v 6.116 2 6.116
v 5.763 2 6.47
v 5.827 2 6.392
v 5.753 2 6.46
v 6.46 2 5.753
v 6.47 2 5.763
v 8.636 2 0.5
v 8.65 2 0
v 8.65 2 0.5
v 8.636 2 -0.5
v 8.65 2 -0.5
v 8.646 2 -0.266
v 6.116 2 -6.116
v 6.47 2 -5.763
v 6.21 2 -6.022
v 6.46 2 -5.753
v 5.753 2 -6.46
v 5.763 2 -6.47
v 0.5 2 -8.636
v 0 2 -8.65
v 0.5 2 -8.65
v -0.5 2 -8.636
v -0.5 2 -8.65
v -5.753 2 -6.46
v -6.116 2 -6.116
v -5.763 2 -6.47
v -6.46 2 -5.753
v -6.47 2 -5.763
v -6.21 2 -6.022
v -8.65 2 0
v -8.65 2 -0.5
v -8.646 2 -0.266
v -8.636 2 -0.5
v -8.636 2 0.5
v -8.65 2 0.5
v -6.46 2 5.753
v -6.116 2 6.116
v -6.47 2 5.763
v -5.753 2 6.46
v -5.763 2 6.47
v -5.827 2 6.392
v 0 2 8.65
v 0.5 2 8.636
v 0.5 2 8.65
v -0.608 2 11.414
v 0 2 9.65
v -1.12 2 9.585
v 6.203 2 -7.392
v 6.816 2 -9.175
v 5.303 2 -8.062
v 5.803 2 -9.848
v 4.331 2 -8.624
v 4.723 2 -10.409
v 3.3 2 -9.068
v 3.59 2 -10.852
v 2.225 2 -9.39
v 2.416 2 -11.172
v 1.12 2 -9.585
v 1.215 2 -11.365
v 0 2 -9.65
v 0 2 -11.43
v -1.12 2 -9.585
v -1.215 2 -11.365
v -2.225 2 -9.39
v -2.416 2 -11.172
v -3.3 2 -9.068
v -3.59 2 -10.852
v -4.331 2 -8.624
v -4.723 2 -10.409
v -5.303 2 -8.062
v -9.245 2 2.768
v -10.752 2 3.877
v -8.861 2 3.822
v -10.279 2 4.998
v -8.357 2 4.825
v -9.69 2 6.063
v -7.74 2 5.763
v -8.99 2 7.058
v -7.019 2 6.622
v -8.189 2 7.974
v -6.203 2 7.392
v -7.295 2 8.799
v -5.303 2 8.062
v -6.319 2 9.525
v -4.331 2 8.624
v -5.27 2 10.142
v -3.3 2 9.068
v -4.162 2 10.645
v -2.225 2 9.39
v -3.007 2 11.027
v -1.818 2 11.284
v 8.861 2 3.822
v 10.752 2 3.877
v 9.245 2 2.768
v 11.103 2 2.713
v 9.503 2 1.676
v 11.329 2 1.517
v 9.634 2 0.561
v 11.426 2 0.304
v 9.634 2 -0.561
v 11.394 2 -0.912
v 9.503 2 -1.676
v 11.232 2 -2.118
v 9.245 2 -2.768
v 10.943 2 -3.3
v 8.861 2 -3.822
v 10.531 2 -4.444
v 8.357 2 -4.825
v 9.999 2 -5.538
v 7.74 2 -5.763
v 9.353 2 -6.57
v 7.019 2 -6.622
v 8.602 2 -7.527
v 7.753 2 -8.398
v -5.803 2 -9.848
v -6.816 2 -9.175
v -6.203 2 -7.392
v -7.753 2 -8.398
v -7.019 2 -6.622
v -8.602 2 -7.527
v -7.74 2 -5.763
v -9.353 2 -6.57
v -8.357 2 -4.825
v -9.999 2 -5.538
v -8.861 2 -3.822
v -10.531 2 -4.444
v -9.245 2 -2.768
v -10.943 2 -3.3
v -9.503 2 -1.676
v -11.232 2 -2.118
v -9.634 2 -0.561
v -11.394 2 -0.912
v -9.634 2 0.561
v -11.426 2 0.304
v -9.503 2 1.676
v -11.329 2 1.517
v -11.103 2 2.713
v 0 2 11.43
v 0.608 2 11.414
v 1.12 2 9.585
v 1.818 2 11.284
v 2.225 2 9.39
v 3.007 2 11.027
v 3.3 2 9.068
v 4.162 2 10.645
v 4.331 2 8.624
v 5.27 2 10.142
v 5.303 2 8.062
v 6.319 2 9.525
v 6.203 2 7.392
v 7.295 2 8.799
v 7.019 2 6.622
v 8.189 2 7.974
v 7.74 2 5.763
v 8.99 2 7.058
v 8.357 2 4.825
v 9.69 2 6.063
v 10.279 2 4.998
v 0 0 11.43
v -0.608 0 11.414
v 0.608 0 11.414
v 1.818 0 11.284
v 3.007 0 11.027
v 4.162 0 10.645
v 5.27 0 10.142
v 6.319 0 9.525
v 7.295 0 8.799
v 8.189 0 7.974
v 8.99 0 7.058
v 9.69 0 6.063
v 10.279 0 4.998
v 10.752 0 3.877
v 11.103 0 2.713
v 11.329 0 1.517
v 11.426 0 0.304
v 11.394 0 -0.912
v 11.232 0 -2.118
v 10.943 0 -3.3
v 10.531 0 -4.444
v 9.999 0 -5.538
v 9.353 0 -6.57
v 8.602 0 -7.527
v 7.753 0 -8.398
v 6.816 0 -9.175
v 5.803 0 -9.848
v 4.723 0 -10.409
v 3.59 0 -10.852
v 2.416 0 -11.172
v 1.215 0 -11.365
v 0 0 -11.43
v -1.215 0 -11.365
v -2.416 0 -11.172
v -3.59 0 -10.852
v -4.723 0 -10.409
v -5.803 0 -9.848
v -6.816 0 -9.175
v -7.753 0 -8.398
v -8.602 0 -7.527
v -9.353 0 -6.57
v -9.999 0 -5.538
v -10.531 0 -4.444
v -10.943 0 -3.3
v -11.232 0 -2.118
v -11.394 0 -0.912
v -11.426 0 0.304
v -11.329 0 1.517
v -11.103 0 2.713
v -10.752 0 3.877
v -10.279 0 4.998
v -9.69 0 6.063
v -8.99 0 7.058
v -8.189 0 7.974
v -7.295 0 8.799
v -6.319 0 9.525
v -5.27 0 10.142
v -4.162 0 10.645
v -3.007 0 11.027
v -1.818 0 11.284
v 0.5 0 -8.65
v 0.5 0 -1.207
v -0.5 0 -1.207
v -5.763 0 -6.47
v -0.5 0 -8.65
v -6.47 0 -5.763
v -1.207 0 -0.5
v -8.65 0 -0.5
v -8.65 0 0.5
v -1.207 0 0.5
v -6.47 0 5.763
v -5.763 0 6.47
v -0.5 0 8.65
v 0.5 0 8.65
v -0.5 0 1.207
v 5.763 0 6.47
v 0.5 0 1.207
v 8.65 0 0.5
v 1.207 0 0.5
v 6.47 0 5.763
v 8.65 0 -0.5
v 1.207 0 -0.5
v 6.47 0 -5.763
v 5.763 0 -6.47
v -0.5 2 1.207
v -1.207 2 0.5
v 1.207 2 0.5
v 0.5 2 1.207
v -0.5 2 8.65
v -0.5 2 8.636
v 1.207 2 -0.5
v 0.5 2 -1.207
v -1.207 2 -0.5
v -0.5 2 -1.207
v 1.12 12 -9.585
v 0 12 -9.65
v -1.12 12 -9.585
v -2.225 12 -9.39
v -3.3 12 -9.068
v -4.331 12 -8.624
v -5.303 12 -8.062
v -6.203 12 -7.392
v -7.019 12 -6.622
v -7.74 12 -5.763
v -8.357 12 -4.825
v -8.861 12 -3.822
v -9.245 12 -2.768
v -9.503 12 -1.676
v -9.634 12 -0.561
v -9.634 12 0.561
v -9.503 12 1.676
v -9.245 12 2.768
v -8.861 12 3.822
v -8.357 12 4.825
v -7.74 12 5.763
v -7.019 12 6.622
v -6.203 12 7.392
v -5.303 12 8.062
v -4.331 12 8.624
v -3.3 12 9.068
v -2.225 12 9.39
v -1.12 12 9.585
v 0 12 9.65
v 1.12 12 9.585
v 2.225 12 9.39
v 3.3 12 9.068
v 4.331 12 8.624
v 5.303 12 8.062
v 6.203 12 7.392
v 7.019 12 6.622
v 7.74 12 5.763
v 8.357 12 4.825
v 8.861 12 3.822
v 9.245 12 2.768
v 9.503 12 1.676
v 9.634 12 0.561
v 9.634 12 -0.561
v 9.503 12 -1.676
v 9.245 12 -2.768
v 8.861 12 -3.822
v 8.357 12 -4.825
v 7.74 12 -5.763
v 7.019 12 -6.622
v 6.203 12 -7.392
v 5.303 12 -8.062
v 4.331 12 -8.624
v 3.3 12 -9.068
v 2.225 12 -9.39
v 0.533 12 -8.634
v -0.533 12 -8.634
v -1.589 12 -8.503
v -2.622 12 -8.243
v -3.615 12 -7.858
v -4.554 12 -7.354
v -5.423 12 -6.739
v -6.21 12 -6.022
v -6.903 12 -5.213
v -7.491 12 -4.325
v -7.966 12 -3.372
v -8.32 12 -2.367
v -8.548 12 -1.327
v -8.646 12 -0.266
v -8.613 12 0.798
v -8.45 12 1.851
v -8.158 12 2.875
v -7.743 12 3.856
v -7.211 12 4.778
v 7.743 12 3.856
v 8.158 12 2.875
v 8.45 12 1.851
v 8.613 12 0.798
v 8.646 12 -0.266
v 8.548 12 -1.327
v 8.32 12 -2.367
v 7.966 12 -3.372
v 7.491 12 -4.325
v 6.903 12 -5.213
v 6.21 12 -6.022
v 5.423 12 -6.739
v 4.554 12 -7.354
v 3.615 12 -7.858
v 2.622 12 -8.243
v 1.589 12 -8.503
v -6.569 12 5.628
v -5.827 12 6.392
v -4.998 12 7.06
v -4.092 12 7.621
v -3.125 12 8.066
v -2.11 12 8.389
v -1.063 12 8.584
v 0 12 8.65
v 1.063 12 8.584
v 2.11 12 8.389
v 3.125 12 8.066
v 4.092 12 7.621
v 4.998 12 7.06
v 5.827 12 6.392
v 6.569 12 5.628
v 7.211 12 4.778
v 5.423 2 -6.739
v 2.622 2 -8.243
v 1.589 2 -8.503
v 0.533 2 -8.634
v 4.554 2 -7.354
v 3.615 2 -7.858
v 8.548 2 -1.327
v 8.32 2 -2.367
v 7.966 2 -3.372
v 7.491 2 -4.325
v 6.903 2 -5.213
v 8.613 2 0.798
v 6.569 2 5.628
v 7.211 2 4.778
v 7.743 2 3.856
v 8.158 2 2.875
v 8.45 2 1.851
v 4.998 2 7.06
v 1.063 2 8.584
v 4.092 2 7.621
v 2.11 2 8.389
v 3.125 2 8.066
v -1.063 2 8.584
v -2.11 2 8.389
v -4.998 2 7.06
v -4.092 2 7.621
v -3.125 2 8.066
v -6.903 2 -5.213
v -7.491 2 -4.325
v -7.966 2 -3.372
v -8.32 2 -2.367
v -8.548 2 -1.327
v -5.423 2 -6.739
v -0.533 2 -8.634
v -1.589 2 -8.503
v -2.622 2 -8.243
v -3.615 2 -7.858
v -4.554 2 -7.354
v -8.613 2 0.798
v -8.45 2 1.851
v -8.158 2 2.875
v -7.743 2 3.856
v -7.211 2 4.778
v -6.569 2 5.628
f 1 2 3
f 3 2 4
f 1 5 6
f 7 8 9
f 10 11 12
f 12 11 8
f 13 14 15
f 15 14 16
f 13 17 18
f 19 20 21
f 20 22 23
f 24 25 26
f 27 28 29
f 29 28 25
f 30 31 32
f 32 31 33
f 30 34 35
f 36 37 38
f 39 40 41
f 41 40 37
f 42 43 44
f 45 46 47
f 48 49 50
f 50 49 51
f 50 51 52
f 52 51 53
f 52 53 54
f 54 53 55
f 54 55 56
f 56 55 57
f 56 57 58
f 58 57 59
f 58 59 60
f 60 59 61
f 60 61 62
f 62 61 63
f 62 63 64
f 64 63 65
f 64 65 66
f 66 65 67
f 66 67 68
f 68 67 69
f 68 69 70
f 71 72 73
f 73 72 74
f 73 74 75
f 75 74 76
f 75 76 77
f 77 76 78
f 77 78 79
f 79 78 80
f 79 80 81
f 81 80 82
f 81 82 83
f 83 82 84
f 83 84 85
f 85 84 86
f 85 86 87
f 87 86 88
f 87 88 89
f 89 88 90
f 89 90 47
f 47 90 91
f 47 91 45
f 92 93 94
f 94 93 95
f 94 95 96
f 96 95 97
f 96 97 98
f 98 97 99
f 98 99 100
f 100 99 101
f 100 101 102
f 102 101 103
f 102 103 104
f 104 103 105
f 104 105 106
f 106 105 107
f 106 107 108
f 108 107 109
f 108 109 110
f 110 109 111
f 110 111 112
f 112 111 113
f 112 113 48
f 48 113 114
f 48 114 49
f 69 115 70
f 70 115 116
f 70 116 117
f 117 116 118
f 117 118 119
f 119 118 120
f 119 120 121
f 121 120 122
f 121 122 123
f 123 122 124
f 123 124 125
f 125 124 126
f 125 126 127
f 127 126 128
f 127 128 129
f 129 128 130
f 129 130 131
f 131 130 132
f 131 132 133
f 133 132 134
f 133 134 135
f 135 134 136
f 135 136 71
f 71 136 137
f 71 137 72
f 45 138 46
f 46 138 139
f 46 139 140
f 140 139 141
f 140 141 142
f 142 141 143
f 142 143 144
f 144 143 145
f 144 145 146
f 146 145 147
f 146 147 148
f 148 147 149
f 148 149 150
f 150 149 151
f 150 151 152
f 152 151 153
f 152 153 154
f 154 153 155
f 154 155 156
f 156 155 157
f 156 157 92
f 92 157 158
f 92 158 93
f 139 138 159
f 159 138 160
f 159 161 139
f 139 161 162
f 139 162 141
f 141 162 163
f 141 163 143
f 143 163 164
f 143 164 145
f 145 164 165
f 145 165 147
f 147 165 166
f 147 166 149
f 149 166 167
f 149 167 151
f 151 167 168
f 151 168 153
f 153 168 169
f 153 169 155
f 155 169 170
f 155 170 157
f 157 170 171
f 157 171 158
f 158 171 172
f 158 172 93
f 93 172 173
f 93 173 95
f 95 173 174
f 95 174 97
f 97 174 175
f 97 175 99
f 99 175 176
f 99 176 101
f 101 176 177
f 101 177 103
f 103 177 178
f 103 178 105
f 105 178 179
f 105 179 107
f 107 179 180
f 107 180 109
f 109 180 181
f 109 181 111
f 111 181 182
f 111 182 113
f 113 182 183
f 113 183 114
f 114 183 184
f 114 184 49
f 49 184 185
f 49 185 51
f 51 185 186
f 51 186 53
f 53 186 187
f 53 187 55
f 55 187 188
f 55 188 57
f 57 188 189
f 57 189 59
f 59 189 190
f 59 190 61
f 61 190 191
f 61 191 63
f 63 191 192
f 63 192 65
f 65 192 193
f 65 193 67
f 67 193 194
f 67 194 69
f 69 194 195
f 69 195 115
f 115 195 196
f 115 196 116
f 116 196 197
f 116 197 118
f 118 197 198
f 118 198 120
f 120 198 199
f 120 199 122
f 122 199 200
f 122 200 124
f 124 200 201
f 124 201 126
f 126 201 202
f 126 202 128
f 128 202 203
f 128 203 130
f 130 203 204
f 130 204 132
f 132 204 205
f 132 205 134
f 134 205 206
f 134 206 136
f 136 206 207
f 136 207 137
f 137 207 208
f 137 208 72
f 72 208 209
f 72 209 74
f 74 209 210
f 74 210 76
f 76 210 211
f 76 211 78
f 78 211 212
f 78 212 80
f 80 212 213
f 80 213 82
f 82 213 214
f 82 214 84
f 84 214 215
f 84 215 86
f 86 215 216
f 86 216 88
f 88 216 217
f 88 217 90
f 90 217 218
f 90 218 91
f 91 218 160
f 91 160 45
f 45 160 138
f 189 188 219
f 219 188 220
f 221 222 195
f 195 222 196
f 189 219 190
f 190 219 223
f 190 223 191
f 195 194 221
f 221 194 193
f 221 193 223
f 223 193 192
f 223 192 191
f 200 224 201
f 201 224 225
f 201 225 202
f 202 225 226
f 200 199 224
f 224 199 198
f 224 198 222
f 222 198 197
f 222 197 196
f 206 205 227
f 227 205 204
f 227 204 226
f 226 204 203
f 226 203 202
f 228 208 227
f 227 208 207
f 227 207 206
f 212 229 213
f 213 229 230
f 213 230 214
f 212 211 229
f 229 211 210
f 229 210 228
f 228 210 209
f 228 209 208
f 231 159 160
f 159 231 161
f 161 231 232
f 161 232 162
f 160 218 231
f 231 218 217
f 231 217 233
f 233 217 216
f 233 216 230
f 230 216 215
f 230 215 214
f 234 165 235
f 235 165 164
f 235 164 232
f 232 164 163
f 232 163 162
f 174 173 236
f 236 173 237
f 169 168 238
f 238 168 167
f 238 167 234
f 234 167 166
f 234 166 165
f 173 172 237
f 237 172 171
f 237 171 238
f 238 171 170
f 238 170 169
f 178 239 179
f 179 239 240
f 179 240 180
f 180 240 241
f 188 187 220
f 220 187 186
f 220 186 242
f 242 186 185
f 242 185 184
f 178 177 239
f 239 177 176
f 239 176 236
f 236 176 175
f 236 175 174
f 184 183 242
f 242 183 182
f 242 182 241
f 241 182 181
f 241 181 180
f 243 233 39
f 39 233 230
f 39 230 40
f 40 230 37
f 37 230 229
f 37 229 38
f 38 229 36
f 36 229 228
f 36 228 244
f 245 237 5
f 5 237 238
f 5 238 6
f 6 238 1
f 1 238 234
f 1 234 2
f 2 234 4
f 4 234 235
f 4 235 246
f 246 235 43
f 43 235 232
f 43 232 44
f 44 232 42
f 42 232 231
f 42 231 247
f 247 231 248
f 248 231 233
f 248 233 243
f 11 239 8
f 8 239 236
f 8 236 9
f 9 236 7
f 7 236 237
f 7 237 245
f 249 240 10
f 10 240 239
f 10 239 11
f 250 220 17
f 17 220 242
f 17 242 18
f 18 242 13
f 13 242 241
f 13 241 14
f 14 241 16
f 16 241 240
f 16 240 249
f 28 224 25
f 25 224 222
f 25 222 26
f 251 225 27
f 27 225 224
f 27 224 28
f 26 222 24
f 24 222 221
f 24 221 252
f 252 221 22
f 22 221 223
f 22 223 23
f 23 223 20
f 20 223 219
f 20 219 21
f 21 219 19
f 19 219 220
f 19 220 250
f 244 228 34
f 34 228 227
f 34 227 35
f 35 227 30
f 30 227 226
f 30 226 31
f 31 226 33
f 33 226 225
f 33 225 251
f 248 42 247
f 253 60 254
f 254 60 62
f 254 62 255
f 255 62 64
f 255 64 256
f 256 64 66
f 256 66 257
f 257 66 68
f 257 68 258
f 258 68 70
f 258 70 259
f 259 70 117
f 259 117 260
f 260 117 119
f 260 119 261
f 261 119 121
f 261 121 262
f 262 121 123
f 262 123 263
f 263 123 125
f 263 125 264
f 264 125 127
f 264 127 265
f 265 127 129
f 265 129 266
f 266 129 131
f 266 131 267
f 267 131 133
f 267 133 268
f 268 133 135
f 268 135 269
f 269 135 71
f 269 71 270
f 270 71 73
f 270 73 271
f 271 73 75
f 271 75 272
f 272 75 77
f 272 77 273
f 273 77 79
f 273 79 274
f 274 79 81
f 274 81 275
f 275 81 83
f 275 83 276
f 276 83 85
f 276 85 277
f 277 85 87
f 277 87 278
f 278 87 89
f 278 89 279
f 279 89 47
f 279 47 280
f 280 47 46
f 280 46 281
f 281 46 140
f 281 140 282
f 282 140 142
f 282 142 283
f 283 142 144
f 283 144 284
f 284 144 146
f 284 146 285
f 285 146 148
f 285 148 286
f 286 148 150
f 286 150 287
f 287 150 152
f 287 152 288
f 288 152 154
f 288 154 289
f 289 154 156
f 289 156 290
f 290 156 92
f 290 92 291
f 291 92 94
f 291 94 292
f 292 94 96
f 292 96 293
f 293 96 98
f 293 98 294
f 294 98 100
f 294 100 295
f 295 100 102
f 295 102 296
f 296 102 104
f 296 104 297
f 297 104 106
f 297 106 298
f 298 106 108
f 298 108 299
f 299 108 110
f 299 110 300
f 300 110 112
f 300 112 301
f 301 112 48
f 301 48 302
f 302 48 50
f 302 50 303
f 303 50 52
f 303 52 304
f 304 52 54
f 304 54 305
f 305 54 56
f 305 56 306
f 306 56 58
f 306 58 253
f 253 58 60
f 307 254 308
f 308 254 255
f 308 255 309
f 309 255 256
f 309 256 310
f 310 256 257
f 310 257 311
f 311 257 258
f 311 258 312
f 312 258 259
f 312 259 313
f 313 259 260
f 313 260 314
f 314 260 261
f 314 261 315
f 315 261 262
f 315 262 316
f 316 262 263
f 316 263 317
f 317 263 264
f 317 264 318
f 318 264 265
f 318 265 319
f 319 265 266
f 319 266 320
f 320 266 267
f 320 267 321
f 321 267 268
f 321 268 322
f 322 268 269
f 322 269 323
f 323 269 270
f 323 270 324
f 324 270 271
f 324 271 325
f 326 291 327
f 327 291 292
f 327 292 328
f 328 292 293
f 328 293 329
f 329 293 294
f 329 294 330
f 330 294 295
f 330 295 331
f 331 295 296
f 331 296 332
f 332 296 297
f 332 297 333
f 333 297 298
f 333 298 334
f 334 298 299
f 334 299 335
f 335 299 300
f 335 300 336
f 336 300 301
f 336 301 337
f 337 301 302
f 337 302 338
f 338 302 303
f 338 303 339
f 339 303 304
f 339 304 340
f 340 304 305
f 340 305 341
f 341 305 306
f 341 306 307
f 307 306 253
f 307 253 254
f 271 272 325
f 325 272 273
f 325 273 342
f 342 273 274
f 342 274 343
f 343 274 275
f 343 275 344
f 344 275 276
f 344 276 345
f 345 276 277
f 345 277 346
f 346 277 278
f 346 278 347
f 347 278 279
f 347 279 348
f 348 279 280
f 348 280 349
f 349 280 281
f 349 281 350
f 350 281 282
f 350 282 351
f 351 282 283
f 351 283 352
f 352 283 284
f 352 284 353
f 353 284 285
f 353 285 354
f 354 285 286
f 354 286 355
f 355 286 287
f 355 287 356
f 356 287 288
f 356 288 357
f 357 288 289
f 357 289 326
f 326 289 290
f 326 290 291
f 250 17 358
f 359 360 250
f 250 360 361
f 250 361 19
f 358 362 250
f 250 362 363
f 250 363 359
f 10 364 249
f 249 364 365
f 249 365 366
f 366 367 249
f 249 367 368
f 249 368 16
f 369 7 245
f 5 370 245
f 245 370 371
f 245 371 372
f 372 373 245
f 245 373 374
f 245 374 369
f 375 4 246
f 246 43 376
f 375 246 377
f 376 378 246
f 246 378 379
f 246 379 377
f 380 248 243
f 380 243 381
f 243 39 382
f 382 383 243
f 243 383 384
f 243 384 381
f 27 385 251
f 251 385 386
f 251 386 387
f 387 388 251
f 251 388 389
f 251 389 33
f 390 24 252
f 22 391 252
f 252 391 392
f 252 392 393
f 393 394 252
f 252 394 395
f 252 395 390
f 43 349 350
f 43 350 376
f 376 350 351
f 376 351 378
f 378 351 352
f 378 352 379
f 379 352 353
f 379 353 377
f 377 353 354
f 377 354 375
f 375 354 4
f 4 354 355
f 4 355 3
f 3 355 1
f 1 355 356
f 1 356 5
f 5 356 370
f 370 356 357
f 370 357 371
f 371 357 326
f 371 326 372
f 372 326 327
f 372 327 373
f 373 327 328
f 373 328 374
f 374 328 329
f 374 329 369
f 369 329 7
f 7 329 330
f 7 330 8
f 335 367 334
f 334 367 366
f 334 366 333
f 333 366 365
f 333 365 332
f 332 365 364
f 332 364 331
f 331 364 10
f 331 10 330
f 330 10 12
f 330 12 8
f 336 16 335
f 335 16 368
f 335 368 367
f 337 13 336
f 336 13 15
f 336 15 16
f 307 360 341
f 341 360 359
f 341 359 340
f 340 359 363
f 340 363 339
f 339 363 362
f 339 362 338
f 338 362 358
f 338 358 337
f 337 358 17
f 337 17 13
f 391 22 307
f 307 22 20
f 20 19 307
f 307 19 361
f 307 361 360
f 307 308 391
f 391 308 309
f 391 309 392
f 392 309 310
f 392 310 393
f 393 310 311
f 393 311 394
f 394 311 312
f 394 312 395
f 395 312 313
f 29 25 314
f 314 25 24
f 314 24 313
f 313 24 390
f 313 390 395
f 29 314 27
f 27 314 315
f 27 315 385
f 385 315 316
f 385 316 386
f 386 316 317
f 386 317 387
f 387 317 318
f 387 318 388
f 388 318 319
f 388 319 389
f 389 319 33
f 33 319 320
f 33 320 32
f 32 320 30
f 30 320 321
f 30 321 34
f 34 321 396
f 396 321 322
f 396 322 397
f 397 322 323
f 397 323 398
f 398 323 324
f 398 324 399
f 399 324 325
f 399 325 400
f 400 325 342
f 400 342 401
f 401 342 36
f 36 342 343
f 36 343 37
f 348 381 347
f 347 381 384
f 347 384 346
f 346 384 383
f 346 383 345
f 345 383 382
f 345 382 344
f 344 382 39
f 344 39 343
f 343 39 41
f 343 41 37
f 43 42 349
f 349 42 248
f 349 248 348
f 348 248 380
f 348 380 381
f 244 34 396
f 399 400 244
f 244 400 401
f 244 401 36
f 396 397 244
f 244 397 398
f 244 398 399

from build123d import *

# Parameters (mm, degrees)
SKETCH1_R           = 11.43
BOSS_EXTRUDE1_DEPTH = 2
SKETCH2_W           = 17.3
SKETCH2_H           = 1
SKETCH2_W_2         = 1
SKETCH2_H_2         = 17.3
CUT_EXTRUDE7_DEPTH  = 2
SKETCH3_R           = 9.65
BOSS_EXTRUDE2_DEPTH = 10
SKETCH4_R           = 8.65
CUT_EXTRUDE8_DEPTH  = 10


with BuildPart() as part:
    # Sketch1 → Boss-Extrude1 (new body)
    with BuildSketch(Plane(origin=(0, 0, 0), x_dir=(1, 0, 0), z_dir=(0, 1, 0))):
        Circle(SKETCH1_R)
    extrude(amount=BOSS_EXTRUDE1_DEPTH)

    # Sketch2 → Cut-Extrude7 (cut)
    with BuildSketch(Plane(origin=(0, 2, 0), x_dir=(1, 0, 0), z_dir=(0, 1, 0))):
        Polygon((-6.470027048, 5.762920267), (5.762920267, -6.470027048), (6.470027048, -5.762920267), (-5.762920267, 6.470027048), align=None)
        Rectangle(SKETCH2_W, SKETCH2_H)
        Rectangle(SKETCH2_W_2, SKETCH2_H_2)
        Polygon((5.762920267, 6.470027048), (-6.470027048, -5.762920267), (-5.762920267, -6.470027048), (6.470027048, 5.762920267), align=None)
    extrude(amount=-CUT_EXTRUDE7_DEPTH, mode=Mode.SUBTRACT)

    # Sketch3 → Boss-Extrude2 (add)
    with BuildSketch(Plane(origin=(0, 2, 0), x_dir=(1, 0, 0), z_dir=(0, 1, 0))):
        Circle(SKETCH3_R)
    extrude(amount=BOSS_EXTRUDE2_DEPTH)

    # Sketch4 → Cut-Extrude8 (cut)
    with BuildSketch(Plane(origin=(0, 12, 0), x_dir=(1, 0, 0), z_dir=(0, 1, 0))):
        Circle(SKETCH4_R)
    extrude(amount=-CUT_EXTRUDE8_DEPTH, mode=Mode.SUBTRACT)


solid = part.part
